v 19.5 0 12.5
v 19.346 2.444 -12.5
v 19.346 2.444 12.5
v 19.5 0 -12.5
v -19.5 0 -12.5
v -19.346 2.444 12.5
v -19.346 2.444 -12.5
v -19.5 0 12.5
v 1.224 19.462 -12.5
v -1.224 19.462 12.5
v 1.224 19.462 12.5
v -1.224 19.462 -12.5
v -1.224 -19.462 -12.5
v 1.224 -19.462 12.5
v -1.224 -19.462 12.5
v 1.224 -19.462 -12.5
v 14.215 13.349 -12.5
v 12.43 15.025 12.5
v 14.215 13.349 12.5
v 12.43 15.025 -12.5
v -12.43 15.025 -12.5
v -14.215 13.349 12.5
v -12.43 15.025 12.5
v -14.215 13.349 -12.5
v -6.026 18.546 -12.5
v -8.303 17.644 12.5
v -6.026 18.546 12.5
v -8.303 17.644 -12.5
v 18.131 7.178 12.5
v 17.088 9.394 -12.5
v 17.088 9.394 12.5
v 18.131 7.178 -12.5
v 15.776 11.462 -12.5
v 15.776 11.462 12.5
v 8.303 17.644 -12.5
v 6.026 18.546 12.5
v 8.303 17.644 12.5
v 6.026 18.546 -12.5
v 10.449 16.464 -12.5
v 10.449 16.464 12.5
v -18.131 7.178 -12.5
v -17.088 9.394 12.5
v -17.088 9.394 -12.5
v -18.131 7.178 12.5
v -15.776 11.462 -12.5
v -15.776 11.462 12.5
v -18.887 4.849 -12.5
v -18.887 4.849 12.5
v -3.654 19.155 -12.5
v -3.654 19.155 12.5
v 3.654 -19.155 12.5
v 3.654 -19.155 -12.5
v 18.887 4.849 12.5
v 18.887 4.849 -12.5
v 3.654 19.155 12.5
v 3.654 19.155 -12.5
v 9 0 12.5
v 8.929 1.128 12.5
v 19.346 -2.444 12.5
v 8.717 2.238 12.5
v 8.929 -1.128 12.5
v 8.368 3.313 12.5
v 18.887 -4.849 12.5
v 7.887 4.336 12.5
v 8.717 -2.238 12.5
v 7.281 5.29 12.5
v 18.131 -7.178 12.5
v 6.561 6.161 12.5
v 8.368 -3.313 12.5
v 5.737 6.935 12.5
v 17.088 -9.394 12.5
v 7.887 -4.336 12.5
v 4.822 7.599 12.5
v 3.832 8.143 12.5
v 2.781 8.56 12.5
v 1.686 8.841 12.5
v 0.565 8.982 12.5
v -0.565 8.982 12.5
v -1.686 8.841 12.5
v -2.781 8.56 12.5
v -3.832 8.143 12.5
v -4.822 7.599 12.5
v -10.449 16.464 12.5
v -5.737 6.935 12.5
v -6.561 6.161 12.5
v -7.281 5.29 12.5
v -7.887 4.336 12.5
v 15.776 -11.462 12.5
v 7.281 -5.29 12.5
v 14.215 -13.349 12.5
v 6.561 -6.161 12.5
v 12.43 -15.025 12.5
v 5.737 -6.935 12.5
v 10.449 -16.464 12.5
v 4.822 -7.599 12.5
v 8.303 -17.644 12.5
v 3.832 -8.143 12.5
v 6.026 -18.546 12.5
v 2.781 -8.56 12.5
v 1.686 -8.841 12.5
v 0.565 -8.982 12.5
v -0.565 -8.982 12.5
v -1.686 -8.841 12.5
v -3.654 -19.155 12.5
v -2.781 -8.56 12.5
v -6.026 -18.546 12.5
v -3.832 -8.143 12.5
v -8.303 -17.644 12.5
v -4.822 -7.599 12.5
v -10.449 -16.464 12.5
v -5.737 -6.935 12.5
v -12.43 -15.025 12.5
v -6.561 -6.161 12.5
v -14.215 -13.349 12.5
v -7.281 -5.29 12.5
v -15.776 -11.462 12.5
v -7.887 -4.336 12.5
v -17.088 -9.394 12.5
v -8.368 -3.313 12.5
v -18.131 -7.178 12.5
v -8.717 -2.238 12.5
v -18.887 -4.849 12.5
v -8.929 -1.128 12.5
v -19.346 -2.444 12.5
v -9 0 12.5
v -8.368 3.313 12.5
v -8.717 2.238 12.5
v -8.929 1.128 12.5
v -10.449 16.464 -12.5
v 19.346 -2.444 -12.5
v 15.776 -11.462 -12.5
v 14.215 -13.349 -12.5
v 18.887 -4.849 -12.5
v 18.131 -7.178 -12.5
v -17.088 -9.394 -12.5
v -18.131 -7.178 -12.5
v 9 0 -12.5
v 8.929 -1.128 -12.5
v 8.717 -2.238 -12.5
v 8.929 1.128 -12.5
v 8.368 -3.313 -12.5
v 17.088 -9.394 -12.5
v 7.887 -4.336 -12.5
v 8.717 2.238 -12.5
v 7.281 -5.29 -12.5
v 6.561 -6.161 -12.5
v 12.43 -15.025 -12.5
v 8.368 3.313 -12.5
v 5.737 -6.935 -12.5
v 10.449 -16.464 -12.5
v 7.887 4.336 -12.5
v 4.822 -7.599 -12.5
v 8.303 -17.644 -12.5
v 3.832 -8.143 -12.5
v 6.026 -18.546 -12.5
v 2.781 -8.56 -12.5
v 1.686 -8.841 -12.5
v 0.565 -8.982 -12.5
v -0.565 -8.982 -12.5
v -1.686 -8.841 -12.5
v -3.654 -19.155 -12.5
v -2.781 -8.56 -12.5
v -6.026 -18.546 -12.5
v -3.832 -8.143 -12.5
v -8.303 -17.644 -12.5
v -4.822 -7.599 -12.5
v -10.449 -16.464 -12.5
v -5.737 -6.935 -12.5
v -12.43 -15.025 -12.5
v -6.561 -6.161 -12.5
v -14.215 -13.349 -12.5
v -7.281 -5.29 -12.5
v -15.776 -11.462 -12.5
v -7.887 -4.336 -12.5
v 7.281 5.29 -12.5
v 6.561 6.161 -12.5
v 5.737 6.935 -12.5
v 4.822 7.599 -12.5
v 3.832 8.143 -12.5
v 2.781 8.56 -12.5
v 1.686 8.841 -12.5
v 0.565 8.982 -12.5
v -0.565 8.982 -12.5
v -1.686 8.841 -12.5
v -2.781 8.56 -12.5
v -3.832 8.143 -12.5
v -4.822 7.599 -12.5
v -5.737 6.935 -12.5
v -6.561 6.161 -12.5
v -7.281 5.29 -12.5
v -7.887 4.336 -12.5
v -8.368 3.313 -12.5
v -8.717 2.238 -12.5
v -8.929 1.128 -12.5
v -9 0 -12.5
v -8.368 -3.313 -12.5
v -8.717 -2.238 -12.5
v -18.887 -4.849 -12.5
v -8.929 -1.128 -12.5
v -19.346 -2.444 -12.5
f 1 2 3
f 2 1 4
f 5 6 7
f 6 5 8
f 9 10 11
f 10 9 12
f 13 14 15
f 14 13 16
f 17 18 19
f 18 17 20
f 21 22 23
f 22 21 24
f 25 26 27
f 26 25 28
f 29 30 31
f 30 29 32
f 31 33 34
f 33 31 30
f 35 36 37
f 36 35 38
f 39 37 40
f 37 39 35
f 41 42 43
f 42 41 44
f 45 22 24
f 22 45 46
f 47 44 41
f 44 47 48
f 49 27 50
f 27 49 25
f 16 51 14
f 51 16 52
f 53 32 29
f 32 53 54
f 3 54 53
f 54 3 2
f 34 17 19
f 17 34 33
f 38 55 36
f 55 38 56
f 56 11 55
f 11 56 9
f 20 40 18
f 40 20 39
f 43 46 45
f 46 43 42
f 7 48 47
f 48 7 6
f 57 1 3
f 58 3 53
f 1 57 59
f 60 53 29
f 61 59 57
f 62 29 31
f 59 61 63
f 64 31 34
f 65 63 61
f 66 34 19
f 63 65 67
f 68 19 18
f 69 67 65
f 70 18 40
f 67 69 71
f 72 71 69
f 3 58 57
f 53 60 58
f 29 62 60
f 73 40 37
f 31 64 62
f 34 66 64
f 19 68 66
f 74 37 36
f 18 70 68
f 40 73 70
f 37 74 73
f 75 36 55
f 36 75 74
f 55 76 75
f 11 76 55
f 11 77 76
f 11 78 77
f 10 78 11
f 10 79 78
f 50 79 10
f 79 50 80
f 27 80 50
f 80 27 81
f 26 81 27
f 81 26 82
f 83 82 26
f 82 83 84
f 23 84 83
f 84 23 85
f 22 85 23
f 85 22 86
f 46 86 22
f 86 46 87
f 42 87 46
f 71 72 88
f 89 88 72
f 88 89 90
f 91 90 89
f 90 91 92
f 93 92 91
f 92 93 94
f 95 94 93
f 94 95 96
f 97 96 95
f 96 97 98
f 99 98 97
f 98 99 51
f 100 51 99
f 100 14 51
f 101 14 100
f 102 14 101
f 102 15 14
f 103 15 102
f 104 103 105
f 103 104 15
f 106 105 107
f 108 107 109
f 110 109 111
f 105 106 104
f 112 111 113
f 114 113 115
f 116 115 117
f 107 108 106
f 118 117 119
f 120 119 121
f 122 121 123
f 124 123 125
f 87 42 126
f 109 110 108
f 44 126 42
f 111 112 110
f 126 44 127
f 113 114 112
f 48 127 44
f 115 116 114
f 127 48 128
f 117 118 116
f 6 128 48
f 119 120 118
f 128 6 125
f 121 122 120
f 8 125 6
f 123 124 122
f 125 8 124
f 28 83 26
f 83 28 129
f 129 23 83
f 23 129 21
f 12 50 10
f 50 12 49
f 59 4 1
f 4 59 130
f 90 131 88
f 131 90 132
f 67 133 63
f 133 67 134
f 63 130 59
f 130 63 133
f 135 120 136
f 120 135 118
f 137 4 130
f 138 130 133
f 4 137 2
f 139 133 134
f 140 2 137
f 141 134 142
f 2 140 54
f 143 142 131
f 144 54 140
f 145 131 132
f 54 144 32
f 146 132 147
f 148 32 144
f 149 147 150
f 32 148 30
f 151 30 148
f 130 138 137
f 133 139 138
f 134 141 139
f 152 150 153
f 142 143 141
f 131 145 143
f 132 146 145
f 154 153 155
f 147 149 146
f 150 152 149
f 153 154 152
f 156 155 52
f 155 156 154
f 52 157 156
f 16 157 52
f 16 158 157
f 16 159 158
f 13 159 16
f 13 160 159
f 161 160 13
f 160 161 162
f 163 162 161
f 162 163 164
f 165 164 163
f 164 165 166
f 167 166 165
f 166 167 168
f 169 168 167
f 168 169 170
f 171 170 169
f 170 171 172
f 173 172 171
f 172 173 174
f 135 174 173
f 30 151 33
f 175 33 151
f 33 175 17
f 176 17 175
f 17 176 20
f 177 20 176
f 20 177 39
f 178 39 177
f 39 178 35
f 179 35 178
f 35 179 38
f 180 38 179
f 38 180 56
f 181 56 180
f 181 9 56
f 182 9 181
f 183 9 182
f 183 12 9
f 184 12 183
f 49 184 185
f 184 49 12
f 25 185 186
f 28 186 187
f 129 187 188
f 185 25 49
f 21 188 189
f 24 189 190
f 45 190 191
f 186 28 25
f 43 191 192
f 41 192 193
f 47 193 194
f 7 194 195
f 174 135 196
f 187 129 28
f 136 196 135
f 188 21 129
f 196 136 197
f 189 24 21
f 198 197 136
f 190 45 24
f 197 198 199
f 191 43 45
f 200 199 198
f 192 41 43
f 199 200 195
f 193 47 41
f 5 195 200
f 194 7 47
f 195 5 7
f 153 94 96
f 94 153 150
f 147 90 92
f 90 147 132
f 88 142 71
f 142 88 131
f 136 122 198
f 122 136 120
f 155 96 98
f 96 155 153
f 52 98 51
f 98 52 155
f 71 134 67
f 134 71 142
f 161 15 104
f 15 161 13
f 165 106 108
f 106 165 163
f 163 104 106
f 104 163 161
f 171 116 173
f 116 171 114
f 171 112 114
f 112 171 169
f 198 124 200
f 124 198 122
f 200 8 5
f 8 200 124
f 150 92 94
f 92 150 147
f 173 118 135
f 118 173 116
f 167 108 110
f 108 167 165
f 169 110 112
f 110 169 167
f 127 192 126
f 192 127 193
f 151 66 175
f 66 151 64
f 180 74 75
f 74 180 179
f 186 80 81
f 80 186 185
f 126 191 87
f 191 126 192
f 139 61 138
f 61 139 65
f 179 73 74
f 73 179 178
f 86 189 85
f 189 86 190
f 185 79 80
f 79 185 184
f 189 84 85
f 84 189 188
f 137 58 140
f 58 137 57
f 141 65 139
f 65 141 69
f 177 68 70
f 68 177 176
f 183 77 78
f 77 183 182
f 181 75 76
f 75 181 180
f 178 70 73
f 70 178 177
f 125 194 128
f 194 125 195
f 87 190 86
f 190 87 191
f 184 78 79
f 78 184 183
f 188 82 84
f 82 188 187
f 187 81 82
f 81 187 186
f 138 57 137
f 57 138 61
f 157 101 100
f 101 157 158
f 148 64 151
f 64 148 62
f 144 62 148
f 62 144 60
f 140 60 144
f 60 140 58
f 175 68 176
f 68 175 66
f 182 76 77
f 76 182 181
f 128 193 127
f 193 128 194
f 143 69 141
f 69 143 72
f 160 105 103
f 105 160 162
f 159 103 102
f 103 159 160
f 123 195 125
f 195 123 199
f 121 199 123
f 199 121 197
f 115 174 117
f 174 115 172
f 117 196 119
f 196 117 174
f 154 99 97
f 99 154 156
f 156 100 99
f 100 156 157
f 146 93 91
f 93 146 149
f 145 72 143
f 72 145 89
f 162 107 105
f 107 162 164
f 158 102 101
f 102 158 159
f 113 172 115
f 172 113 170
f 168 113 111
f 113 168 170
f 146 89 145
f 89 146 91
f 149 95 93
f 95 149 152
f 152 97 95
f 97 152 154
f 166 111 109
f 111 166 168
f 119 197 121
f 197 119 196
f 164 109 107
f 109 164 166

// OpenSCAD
$fn = 50;


difference() {
	union() {
		translate(v = [0, 0, -12.5000000000]) {
			cylinder(h = 25, r = 19.5000000000);
		}
	}
	union() {
		translate(v = [0, 0, -100.0000000000]) {
			cylinder(h = 200, r = 9);
		}
	}
}
